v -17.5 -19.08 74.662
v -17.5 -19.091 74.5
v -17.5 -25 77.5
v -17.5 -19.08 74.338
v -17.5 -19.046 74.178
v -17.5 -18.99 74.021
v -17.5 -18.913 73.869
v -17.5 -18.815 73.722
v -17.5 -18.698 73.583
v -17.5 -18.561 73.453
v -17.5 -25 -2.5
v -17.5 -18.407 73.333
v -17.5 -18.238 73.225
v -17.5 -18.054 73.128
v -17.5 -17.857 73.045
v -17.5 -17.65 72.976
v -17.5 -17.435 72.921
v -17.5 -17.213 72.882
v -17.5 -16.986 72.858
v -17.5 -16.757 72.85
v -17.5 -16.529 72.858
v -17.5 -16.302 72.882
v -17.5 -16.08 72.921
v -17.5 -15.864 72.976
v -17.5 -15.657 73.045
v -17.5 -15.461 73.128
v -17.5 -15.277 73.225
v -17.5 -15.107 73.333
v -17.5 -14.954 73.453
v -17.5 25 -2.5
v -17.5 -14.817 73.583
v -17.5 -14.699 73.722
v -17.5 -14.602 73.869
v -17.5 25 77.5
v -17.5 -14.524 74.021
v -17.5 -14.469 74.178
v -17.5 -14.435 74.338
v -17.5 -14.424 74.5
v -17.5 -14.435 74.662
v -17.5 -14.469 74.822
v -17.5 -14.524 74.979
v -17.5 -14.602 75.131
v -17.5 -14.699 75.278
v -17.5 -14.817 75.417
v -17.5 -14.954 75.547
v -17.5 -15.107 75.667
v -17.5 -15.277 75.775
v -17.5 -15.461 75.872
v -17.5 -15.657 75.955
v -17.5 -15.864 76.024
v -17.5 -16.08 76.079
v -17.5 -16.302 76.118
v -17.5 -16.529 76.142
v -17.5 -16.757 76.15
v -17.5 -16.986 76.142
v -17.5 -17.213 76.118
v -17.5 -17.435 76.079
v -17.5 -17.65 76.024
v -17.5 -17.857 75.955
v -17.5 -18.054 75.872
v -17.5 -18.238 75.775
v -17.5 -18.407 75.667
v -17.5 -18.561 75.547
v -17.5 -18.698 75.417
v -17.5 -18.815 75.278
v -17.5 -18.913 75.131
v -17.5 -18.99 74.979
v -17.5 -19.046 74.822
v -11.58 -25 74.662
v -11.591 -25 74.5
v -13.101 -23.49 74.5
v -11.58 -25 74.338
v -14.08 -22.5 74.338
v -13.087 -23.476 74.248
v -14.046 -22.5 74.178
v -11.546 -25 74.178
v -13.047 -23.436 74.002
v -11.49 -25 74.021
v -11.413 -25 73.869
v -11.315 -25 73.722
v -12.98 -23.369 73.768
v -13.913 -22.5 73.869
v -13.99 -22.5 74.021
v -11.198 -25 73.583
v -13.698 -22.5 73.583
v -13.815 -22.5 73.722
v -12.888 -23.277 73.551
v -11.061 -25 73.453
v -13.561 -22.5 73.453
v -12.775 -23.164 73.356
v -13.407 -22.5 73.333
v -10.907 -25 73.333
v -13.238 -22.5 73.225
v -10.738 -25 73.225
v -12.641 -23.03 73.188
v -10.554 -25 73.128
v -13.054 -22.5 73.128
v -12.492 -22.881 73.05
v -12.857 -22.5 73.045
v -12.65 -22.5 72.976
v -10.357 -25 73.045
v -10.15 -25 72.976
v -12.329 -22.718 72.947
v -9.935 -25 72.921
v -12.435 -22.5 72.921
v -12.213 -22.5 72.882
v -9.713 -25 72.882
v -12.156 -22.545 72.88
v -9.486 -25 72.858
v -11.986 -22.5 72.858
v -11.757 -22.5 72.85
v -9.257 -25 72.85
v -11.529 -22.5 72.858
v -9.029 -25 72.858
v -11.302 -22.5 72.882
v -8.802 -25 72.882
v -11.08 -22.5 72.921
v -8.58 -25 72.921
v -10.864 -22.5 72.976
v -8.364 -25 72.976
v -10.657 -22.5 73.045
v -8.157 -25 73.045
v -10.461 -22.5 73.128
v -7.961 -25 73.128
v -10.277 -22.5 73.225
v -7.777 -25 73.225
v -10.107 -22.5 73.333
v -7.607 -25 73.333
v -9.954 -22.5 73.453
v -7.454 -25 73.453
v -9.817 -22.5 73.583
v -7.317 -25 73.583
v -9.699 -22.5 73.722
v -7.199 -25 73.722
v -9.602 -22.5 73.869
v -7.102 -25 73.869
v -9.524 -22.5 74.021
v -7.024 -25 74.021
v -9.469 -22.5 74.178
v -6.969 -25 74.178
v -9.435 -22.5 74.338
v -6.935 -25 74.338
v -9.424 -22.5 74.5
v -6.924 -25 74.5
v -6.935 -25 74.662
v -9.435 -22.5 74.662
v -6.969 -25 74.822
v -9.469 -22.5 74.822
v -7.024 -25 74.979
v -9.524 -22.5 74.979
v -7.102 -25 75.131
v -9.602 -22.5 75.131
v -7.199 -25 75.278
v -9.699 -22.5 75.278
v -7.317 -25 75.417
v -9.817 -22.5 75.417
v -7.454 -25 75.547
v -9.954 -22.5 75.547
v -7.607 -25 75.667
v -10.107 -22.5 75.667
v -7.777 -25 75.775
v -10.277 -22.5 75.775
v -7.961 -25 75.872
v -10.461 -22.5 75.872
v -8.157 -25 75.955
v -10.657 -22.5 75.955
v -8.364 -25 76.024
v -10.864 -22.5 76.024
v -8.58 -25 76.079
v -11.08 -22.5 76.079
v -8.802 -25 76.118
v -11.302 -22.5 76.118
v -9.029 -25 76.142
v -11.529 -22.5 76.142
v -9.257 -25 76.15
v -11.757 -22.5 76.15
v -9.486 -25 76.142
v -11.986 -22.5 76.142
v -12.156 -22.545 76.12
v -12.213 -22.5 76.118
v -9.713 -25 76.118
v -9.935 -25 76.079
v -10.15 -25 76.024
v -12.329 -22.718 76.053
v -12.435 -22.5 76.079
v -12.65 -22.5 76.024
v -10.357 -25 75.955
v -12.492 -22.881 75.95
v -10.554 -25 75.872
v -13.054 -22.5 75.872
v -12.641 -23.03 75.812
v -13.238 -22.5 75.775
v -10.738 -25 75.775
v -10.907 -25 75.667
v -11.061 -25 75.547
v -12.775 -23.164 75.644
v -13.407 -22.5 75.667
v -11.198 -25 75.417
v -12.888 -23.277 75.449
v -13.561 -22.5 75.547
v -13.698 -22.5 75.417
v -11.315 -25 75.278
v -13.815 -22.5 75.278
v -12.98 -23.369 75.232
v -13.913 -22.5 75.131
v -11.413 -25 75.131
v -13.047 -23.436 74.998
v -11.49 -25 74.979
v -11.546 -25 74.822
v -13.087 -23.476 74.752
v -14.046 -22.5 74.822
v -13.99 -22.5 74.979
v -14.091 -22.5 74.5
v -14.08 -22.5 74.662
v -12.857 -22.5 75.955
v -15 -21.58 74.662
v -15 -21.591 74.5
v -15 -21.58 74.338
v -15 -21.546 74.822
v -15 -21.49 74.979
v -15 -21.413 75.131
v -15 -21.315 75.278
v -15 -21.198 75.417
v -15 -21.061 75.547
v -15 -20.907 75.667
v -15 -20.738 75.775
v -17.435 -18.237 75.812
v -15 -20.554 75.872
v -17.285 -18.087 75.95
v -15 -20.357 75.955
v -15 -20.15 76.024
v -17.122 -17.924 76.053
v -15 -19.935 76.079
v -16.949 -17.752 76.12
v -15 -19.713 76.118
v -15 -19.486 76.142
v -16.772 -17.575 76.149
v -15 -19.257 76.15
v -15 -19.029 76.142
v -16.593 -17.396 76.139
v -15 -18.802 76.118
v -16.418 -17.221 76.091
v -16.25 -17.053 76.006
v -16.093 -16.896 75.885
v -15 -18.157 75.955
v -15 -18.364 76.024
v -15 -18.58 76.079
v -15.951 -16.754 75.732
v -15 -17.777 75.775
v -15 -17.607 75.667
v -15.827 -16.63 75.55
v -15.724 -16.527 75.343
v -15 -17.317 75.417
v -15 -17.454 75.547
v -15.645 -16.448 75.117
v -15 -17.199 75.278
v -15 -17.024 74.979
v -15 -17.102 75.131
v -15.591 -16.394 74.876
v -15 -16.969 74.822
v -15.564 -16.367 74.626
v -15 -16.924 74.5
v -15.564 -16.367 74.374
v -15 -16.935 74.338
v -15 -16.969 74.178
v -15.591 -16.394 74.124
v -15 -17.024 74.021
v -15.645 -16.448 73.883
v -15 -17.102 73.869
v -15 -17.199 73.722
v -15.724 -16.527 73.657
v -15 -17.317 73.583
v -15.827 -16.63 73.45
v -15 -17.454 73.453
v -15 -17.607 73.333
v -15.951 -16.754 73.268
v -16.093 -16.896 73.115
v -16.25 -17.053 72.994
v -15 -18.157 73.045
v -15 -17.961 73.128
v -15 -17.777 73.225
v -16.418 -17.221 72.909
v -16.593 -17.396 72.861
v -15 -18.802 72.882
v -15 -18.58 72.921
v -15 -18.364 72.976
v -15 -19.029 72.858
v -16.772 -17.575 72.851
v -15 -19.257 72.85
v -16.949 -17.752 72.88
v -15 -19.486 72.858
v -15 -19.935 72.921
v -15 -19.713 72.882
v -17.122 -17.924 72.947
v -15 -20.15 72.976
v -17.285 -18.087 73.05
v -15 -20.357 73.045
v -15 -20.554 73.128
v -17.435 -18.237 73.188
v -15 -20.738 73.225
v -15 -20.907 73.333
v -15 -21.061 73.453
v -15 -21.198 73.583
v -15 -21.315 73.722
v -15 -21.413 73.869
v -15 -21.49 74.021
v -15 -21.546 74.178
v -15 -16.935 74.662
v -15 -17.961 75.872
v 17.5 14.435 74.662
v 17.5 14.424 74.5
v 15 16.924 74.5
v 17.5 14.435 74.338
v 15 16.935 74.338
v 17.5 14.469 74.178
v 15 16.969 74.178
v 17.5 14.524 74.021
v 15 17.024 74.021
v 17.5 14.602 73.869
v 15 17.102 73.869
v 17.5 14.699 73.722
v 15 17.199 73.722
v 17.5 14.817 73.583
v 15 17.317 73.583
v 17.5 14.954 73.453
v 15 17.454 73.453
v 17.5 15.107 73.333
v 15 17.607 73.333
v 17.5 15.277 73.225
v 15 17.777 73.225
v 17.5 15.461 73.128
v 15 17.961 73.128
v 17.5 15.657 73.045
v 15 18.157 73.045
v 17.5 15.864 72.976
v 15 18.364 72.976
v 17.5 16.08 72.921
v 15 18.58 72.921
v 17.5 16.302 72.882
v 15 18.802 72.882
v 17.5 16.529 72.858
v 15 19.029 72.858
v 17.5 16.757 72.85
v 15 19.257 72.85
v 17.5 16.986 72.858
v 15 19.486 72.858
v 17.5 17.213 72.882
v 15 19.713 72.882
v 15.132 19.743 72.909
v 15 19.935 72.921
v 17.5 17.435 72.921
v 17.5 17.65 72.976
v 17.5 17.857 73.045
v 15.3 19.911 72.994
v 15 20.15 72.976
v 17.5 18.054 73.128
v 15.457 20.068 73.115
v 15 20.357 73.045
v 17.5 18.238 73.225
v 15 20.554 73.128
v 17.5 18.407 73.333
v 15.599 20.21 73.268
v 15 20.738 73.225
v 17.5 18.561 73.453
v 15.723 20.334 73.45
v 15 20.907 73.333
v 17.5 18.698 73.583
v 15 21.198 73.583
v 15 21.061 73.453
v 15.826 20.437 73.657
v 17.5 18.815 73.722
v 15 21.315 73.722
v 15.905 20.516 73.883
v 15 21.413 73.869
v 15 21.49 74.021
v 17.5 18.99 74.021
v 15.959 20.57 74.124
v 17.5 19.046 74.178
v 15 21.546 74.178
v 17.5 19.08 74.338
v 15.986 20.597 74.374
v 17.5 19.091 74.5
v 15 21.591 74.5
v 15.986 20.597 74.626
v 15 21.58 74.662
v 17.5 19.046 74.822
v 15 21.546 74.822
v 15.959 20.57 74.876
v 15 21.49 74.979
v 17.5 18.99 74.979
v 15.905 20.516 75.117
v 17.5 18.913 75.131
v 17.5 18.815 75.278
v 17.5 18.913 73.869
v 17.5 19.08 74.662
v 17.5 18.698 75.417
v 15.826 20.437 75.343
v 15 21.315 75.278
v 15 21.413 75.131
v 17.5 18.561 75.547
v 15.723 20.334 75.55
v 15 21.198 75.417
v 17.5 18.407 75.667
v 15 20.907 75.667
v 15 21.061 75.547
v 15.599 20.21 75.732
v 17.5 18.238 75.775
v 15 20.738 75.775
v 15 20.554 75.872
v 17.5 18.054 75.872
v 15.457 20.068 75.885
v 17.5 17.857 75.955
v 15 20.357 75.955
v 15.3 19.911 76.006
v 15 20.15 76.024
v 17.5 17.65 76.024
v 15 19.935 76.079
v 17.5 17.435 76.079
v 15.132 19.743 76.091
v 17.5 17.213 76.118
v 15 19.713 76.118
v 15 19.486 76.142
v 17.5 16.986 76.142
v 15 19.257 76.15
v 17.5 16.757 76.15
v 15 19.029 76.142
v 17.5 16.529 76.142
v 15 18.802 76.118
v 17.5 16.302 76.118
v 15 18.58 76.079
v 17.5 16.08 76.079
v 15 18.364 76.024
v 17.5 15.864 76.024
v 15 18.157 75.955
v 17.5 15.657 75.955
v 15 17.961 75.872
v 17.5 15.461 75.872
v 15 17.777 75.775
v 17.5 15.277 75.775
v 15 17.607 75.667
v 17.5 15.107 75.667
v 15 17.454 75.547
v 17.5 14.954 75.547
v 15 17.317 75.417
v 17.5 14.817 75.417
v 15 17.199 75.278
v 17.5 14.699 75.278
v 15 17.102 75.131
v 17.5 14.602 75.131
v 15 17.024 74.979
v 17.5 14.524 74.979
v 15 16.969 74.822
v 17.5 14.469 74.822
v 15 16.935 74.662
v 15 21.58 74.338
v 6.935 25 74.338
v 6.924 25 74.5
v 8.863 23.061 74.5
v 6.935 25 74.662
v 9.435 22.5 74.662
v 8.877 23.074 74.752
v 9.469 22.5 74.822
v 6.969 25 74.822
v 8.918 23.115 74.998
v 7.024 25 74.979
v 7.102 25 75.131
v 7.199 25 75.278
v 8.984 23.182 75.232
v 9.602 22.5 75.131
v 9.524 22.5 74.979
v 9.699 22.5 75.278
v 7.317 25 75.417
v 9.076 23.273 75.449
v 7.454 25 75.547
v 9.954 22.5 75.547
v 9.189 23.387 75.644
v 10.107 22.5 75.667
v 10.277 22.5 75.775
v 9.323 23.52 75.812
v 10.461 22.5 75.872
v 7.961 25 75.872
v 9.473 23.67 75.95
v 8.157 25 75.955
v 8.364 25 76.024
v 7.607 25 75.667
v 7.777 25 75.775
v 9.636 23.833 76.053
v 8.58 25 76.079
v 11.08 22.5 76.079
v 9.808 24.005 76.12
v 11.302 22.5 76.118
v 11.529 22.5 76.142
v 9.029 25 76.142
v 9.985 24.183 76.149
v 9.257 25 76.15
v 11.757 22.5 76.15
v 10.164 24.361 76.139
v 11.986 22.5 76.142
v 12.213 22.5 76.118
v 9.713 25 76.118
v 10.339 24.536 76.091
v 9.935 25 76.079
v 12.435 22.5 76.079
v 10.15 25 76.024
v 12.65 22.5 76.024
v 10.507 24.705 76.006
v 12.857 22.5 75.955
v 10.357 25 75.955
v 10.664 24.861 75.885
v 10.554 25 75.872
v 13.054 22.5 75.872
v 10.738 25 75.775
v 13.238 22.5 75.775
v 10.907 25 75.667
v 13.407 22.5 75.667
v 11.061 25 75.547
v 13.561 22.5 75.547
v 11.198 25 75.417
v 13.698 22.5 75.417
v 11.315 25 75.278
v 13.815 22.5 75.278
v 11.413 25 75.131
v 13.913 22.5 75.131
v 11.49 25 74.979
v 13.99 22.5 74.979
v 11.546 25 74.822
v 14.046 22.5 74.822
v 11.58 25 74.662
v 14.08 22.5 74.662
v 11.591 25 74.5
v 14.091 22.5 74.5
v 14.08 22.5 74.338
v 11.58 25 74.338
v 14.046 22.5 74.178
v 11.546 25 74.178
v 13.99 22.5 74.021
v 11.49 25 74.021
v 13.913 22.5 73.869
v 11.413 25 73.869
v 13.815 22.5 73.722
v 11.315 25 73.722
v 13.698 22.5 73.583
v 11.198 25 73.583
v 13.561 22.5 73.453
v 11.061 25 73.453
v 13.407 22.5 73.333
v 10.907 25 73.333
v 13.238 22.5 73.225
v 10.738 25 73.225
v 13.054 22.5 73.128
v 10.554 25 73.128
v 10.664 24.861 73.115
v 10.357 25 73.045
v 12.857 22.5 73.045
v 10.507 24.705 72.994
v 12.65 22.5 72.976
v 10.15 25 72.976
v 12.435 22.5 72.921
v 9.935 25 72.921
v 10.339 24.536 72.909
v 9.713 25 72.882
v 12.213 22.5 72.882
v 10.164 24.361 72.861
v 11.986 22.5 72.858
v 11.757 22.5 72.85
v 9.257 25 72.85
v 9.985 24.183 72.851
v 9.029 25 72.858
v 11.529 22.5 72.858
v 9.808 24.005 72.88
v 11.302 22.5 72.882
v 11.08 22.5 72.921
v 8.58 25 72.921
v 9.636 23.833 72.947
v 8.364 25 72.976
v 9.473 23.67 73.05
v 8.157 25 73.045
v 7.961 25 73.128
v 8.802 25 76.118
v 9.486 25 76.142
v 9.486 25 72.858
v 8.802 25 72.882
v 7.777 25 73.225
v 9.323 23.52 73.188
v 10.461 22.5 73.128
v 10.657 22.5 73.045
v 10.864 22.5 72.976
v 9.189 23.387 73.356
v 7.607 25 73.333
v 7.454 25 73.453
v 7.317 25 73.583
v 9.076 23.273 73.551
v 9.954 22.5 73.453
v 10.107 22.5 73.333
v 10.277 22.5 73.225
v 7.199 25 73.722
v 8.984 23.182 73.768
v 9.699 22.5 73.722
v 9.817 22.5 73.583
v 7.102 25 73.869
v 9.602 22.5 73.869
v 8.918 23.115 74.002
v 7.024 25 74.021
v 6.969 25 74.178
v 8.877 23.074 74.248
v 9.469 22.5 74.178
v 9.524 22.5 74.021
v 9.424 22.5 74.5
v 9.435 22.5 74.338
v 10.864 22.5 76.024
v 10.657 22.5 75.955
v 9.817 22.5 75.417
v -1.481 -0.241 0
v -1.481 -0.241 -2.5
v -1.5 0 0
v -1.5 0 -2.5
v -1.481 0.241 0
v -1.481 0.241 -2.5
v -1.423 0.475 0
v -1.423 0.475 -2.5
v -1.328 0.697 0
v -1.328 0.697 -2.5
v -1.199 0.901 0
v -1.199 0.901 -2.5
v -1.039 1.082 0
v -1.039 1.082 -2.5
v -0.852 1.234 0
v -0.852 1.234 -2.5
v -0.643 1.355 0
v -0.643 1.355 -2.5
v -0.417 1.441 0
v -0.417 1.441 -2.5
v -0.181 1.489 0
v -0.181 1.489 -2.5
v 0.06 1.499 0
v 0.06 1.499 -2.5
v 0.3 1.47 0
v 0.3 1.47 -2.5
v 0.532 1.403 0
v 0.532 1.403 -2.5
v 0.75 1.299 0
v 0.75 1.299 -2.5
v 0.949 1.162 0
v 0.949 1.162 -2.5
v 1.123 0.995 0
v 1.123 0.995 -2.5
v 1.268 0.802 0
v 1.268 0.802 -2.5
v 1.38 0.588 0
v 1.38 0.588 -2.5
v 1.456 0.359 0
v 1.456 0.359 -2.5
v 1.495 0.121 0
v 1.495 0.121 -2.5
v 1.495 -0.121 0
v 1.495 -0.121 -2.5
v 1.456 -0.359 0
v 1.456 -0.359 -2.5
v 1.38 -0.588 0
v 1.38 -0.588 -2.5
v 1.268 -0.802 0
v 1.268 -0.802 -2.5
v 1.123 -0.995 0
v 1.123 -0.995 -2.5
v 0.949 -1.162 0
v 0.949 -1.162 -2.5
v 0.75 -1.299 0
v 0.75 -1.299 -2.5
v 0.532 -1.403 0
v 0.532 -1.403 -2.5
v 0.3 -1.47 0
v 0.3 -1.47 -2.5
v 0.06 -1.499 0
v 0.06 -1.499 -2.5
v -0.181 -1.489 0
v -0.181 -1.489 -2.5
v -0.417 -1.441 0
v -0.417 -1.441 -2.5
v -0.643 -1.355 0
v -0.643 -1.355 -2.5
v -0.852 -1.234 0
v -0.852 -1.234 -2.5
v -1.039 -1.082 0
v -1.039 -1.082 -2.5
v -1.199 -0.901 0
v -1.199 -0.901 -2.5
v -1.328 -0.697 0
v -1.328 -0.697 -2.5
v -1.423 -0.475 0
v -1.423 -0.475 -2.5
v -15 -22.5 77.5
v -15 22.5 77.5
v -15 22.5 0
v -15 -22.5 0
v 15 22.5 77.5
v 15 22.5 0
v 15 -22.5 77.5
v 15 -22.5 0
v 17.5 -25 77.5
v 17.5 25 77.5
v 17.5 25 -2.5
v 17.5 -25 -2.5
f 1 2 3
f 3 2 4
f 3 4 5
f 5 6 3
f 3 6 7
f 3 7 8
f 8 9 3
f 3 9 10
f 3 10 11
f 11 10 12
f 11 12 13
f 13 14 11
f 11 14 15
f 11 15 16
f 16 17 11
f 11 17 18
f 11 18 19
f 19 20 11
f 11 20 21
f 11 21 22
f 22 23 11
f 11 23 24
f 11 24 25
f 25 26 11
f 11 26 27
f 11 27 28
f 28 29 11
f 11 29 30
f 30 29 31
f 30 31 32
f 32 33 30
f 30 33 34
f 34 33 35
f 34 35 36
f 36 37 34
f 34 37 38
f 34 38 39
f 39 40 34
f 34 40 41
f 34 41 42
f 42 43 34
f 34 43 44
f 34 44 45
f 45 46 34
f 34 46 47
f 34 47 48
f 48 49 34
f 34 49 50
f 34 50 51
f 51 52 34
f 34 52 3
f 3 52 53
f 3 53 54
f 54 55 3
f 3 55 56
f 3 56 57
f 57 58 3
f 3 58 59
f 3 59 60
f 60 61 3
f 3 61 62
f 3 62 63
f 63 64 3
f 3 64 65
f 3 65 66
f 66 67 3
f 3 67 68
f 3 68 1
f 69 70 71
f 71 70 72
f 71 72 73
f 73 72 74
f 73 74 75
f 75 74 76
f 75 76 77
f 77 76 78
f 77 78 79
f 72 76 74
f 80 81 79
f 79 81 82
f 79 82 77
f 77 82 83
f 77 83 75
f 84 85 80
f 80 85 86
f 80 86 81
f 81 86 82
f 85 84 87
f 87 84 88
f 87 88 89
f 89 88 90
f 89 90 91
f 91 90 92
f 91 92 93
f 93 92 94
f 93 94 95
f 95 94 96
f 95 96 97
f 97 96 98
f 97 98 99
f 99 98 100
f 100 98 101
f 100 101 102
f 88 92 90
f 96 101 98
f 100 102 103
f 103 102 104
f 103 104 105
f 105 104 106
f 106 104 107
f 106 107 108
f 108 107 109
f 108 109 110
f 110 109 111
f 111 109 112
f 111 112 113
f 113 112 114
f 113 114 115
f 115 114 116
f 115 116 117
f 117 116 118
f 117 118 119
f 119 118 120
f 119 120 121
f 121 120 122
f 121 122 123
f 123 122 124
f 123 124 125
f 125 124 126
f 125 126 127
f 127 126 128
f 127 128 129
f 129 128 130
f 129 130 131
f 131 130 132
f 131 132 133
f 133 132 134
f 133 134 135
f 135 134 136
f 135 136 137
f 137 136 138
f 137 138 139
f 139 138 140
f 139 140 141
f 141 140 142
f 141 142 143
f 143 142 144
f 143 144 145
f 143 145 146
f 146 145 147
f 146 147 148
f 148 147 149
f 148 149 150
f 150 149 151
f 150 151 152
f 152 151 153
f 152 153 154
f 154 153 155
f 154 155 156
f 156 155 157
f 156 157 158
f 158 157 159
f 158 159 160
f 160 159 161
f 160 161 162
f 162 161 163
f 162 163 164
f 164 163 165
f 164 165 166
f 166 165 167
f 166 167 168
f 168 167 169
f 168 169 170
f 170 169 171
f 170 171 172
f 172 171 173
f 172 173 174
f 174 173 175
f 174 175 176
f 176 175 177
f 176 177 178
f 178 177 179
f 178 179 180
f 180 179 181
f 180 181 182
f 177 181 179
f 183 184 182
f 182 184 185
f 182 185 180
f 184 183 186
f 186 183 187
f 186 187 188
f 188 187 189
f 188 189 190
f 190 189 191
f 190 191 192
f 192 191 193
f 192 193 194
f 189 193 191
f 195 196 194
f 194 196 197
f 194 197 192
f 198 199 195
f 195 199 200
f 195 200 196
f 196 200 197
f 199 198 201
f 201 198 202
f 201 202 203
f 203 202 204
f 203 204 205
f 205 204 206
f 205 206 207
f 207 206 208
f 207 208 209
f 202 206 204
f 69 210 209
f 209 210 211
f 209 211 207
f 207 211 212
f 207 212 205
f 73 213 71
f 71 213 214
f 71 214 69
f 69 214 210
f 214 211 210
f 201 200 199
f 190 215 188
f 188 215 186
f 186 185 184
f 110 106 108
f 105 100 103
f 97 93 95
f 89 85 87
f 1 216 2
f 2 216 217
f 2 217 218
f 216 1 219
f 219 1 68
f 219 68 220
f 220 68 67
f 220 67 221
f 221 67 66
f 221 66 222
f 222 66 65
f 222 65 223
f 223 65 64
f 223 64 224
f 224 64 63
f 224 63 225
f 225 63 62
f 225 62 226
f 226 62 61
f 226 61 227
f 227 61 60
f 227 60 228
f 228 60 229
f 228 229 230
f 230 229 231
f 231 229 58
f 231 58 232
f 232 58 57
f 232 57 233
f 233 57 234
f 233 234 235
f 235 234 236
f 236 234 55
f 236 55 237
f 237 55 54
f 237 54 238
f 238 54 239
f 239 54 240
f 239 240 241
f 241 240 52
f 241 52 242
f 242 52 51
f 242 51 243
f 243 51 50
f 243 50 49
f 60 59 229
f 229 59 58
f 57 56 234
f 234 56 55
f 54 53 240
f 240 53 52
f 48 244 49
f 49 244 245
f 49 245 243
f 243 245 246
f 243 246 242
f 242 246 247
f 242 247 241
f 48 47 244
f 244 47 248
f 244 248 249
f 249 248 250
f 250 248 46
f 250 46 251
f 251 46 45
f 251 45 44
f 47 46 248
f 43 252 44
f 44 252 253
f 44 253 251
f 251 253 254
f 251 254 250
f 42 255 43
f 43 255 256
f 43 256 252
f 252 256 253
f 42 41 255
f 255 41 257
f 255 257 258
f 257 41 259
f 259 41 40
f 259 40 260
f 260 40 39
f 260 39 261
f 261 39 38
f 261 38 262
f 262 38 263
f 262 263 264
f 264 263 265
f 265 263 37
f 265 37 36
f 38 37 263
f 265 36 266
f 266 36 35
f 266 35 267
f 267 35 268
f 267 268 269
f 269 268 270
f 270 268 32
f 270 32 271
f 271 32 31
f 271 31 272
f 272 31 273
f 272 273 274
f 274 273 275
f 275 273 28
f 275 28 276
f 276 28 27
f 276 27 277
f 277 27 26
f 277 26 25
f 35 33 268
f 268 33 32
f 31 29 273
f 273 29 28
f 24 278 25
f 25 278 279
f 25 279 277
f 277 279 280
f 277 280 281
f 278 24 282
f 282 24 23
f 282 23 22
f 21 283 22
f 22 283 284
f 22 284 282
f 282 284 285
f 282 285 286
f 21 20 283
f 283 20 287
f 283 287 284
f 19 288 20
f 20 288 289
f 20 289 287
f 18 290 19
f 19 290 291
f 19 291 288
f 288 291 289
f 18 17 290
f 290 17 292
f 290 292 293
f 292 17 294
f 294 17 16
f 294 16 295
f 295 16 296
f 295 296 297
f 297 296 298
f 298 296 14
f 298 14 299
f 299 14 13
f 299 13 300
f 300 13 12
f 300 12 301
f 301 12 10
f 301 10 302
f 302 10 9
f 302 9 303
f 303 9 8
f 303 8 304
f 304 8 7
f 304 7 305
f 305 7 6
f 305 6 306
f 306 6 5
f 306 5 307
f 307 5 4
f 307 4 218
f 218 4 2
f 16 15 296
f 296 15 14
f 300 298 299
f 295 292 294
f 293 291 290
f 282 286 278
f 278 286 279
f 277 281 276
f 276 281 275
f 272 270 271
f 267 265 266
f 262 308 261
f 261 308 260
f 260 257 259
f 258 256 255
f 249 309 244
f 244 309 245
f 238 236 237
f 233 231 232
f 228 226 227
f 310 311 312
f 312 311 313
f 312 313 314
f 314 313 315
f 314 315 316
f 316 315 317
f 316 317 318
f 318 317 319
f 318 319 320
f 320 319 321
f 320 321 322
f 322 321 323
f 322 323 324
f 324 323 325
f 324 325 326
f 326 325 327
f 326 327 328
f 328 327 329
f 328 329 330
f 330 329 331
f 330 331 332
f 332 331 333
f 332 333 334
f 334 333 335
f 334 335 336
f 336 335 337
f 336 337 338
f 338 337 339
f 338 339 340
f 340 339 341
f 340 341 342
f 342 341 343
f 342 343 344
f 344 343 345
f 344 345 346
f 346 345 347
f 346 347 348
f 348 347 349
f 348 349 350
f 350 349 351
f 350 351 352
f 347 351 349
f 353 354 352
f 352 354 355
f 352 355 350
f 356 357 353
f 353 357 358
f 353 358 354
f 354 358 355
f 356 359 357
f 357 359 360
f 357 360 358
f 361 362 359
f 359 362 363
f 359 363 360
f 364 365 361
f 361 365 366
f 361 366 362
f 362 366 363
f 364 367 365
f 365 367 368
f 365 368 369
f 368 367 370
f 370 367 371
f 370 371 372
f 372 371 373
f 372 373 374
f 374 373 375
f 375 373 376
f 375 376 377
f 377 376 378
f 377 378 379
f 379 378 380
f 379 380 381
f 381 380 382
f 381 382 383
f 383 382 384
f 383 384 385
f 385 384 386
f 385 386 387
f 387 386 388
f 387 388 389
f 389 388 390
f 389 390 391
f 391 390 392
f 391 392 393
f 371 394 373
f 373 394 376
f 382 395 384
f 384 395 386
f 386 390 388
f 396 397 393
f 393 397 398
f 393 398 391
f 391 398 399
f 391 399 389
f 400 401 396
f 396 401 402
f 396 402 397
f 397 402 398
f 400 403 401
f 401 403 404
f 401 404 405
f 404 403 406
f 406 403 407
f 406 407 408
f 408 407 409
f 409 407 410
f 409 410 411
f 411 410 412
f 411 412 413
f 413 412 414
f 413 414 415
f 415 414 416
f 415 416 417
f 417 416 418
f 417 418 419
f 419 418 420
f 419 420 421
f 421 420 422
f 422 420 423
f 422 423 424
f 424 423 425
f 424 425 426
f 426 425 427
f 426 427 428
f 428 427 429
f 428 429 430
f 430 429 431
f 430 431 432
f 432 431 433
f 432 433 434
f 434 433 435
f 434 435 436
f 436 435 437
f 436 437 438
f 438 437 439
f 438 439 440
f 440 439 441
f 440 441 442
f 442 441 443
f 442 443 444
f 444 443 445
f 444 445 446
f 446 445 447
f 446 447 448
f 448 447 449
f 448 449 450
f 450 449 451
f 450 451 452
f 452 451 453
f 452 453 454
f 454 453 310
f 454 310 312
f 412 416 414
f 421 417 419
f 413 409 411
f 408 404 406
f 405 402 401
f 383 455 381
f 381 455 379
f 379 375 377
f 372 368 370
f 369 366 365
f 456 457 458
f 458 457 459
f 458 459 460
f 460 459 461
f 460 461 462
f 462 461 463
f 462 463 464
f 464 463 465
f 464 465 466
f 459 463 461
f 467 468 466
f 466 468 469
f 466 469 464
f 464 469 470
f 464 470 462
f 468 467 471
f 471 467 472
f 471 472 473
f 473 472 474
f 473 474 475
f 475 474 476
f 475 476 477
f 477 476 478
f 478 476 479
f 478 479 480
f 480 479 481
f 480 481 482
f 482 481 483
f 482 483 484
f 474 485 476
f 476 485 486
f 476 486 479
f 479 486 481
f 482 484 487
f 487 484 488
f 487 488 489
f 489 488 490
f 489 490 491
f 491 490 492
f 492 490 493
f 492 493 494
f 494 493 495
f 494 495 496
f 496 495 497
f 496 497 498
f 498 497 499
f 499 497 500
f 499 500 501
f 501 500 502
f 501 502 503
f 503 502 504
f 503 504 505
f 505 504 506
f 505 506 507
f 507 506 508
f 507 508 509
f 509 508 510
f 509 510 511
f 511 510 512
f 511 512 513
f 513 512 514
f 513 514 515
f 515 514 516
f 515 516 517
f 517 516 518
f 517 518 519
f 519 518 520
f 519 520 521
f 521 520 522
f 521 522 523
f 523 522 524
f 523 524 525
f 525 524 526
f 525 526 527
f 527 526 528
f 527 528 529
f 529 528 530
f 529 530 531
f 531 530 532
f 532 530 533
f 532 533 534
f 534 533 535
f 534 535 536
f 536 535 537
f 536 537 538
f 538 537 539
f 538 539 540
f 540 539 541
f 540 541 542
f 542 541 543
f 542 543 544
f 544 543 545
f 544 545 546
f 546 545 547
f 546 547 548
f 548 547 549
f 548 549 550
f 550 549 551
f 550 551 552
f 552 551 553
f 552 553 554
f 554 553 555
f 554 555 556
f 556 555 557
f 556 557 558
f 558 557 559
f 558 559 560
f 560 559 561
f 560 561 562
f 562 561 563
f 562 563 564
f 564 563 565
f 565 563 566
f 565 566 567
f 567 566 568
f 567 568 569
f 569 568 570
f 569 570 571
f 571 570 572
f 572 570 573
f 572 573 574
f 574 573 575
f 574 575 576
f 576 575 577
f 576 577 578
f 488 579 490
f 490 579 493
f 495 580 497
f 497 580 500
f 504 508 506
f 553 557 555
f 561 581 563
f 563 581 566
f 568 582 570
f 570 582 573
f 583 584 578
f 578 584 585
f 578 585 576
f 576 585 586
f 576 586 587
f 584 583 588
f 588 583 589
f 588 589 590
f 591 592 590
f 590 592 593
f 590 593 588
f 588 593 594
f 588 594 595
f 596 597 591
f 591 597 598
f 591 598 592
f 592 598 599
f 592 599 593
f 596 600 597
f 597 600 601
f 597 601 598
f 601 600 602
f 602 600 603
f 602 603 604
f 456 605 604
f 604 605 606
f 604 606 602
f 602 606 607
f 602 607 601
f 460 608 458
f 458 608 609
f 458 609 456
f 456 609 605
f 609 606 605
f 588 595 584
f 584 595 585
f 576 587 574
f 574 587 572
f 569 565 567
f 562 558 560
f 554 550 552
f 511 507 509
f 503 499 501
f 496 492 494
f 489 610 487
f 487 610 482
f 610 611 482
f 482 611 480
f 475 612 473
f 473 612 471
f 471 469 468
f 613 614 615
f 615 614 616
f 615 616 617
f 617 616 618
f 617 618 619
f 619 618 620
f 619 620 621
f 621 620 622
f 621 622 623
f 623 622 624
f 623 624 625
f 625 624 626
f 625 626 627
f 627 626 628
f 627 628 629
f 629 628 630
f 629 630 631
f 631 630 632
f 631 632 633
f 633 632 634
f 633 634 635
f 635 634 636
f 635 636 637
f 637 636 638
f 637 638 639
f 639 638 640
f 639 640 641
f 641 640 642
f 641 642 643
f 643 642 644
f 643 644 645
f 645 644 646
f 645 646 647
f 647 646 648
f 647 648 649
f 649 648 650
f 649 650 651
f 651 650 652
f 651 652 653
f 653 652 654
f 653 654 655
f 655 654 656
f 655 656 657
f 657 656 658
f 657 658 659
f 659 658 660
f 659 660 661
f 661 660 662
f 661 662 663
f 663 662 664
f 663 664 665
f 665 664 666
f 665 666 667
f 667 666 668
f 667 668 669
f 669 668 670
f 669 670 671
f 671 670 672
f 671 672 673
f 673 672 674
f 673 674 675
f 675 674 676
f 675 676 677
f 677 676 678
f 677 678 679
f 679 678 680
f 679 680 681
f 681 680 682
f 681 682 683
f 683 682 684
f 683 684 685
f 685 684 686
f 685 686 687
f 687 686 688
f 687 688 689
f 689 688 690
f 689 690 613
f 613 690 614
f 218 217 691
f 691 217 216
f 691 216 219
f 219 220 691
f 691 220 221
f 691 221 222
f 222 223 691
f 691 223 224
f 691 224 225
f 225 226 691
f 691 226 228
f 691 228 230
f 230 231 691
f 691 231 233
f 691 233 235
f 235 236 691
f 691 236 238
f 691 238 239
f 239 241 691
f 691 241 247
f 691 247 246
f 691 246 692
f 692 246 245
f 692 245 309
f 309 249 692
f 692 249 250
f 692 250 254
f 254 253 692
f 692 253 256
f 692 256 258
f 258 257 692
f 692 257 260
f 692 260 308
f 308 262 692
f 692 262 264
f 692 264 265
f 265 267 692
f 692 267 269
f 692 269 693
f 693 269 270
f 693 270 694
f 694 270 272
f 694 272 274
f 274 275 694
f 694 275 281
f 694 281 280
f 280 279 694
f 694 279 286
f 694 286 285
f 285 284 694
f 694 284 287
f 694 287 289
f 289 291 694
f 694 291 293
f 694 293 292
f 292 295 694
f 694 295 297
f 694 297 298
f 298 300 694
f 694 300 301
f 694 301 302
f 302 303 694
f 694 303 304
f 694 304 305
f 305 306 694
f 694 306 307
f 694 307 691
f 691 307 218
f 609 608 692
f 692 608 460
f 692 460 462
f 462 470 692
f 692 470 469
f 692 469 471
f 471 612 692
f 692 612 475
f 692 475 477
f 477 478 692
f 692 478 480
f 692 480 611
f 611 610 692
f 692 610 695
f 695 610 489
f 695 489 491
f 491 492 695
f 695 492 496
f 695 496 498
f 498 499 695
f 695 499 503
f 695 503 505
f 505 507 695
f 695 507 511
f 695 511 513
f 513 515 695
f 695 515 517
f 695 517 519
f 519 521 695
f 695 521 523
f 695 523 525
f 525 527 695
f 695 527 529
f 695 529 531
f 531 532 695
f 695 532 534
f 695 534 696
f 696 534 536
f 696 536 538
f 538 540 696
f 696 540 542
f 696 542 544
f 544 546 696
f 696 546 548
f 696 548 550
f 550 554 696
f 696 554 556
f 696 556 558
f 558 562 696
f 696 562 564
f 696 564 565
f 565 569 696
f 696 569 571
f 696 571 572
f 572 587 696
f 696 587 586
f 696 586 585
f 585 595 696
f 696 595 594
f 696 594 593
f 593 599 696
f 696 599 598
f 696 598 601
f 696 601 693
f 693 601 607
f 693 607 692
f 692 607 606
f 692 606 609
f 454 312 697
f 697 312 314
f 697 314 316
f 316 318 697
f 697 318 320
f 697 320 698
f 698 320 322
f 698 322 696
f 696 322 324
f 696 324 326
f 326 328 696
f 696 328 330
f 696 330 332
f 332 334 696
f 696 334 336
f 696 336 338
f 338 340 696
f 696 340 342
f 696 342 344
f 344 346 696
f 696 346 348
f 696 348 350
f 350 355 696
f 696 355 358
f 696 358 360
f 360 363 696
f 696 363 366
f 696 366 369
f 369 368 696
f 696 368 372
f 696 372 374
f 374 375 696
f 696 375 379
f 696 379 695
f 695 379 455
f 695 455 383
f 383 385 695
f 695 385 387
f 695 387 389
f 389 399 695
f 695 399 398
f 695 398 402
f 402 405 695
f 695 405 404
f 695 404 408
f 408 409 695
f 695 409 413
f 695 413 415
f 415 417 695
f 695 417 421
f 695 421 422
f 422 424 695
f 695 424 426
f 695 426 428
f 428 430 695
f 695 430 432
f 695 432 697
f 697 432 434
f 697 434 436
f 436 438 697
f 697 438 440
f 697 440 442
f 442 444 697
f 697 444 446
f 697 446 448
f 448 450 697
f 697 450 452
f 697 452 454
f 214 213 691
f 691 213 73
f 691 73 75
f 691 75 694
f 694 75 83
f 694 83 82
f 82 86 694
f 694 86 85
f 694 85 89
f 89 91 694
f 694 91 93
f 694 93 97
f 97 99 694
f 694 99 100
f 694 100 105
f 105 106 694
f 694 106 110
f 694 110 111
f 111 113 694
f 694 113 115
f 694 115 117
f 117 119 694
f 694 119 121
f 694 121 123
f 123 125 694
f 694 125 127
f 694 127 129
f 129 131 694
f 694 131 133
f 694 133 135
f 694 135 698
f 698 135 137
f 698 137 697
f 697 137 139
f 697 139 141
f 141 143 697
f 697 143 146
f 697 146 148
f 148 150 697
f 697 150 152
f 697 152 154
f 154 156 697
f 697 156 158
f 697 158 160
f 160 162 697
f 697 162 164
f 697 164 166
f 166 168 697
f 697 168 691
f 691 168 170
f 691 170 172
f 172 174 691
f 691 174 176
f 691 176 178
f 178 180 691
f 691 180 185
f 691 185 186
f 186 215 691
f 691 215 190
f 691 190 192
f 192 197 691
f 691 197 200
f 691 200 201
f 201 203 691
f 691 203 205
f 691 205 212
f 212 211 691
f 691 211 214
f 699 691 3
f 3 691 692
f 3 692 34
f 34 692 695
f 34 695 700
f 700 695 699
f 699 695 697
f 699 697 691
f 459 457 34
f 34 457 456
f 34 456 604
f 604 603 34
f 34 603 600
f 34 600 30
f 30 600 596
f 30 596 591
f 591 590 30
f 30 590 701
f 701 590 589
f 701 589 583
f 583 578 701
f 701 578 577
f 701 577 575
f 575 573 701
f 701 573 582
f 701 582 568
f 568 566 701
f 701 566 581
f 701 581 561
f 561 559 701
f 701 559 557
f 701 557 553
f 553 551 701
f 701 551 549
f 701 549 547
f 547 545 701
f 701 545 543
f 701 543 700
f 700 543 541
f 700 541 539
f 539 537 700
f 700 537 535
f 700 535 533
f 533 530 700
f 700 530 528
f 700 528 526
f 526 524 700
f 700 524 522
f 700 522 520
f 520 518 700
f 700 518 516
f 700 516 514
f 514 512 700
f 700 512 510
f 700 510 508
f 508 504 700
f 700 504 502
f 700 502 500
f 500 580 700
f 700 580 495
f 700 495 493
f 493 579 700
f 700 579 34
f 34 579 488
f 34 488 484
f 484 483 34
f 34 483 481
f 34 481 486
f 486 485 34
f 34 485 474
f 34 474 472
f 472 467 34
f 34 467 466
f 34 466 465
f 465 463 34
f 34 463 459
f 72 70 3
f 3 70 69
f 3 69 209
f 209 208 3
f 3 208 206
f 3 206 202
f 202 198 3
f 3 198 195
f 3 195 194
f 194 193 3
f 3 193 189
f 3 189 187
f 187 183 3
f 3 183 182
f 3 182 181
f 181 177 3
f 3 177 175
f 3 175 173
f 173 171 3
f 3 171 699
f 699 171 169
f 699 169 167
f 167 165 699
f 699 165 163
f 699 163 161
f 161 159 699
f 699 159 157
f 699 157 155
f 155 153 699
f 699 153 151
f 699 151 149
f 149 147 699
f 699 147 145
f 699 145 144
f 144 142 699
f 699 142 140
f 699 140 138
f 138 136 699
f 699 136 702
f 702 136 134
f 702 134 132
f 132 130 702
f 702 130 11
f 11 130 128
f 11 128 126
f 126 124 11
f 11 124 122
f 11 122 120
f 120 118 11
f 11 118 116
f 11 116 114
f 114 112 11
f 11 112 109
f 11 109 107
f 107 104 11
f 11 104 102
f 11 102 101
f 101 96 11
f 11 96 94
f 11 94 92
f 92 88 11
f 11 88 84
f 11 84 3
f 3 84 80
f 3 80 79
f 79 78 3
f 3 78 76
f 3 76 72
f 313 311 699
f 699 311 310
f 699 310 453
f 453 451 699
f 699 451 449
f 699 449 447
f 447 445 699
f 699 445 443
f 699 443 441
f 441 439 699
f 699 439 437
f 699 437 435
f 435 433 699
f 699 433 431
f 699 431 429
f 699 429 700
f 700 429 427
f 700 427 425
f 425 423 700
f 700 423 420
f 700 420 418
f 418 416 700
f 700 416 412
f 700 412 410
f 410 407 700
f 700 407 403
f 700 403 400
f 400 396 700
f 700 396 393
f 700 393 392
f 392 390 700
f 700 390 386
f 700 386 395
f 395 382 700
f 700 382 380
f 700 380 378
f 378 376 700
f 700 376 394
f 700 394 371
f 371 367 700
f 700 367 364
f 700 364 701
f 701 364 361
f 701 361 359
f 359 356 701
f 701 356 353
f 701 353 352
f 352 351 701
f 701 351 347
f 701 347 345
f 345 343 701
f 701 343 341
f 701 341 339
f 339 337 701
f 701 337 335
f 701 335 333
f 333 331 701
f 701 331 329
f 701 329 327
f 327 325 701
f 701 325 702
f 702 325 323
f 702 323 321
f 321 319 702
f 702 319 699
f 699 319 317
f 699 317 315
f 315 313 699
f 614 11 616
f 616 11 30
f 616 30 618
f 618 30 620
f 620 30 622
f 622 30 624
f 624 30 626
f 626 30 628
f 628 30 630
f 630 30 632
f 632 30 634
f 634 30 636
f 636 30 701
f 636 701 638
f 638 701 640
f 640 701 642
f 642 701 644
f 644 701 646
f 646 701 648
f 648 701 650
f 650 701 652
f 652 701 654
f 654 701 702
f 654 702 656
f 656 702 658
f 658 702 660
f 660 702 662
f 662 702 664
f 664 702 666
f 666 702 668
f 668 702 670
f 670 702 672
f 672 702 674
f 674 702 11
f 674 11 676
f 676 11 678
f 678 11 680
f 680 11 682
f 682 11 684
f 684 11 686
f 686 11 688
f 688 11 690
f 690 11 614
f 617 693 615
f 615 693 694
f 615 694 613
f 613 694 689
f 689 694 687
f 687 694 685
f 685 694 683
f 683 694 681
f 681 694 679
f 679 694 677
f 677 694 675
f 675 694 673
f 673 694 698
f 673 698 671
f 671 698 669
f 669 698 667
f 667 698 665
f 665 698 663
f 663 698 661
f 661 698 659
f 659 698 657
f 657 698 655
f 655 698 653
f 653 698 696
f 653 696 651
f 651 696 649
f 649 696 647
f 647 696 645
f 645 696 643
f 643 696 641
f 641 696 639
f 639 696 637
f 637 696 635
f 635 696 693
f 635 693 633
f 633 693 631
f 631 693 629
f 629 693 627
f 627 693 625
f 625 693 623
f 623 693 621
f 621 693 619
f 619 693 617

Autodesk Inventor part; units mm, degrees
ref_plane "YZ Plane" through (0, 0, 0) normal (1, 0, 0) x (0, 1, 0)
ref_plane "XZ Plane" through (0, 0, 0) normal (0, 1, 0) x (-1, 0, 0)
ref_plane "XY Plane" through (0, 0, 0) normal (0, 0, 1) x (1, 0, 0)
sketch "Skizze1" plane through (0, 0, 0) normal (0, 0, 1) x (1, 0, 0)
  line L0 (-15, -22.5) -> (15, -22.5)
  line L1 (15, -22.5) -> (15, 22.5)
  line L2 (15, 22.5) -> (-15, 22.5)
  line L3 (-15, 22.5) -> (-15, -22.5)
  line L4 (17.5, 25) -> (17.5, -25)
  line L5 (17.5, -25) -> (-17.5, -25)
  line L6 (-17.5, -25) -> (-17.5, 25)
  line L7 (-17.5, 25) -> (17.5, 25)
  point P0 (0, 0)
  point P1 (0, 22.5)
  point P2 (15, 0)
  dimension "d0" = 45
  dimension "d1" = 30
  dimension "d2" = 2.5
extrude "Extrusion1" add sketch "Skizze1" against normal blind 2.5 contours L3 L2 L1 L0 | L4 L5 L6 L7
extrude "Extrusion2" add sketch "Skizze1" along normal blind 77.5
sketch "Skizze2" plane through (0, 0, -2.5) normal (0, 0, -1) x (-1, 0, 0)
  circle A0 centre (0, 0) radius 1.5
  dimension "d7" = 3
extrude "Extrusion3" cut sketch "Skizze2" against normal up to surface (2.5 mm away)
sketch "Skizze3" plane through (0, 0, 77.5) normal (0, 0, 1) x (1, 0, 0)
  line L0 (5.0147, 25) -> (13.5, 25)
  line L1 (13.5, 25) -> (9.2574, 29.2426)
  line L2 (9.2574, 29.2426) -> (5.0147, 25)
  line L3 (17.5, 21) -> (17.5, 12.5147)
  line L4 (17.5, 12.5147) -> (21.7426, 16.7574)
  line L5 (21.7426, 16.7574) -> (17.5, 21)
  line L6 (17.5, 25) -> (-17.5, 25) projected
  line L7 (17.5, -25) -> (17.5, 25) projected
  line L8 (7.136, 27.1213) -> (19.6213, 14.636) construction
  line L9 (-17.5, -12.5147) -> (-17.5, -21)
  line L10 (-17.5, -21) -> (-21.7426, -16.7574)
  line L11 (-21.7426, -16.7574) -> (-17.5, -12.5147)
  line L12 (-13.5, -25) -> (-5.0147, -25)
  line L13 (-5.0147, -25) -> (-9.2574, -29.2426)
  line L14 (-9.2574, -29.2426) -> (-13.5, -25)
  line L15 (-17.5, 25) -> (-17.5, -25) projected
  line L16 (-17.5, -25) -> (17.5, -25) projected
  line L17 (-19.6213, -14.636) -> (-7.136, -27.1213) construction
  point P0 (0, 0)
  dimension "d11" = 6
  dimension "d17" = 4
  dimension "d18" = 4
extrude "Extrusion4" add sketch "Skizze3" against normal blind 6 contours L2 L1 L0 | L9 L10 L11 | L5 L4 L3 | L12 L13 L14
sketch "Skizze4" plane through (9.2574, 29.2426, 71.5) normal (-0.7071, 0.7071, 0) x (-0.7071, -0.7071, 0)
  line L0 (0, 0) -> (6, 0) construction
  line L1 (6, 6) -> (0, 6) construction
  line L2 (0, 0) -> (6, 0) construction
  line L3 (6, 0) -> (6, 6) construction
  line L4 (6, 6) -> (0, 6) construction
  line L5 (0, 6) -> (0, 0) construction
  circle A0 centre (3, 3) radius 1.65
  point P0 (27.2236, -71.5)
  point P1 (3, 6)
  point P2 (0, 3)
  dimension "d14" = 3.3
extrude "Extrusion5" cut sketch "Skizze4" against normal up to surface (17.6569 mm away)
sketch "Skizze5" plane through (-17.5, -12.5147, 71.5) normal (-0.7071, 0.7071, 0) x (-0.7071, -0.7071, 0)
  line L0 (0, 0) -> (6, 0) construction
  line L1 (0, 6) -> (6, 6) construction
  line L2 (0, 0) -> (6, 0) construction
  line L3 (6, 0) -> (6, 6) construction
  line L4 (6, 6) -> (0, 6) construction
  line L5 (0, 6) -> (0, 0) construction
  circle A0 centre (3, 3) radius 1.65
  point P0 (-21.2236, -71.5)
  point P1 (3, 6)
  point P2 (0, 3)
  dimension "d19" = 3.3
extrude "Extrusion6" cut sketch "Skizze5" against normal up to surface (17.6569 mm away)
sketch "Skizze6" plane through (0, 0, 77.5) normal (0, 0, 1) x (1, 0, 0)
  line L0 (-21.7426, -29.2426) -> (21.7426, -29.2426)
  line L1 (21.7426, -29.2426) -> (21.7426, 29.2426)
  line L2 (21.7426, 29.2426) -> (-21.7426, 29.2426)
  line L3 (-21.7426, 29.2426) -> (-21.7426, -29.2426)
  line L4 (17.5, 25) -> (13.5, 25) projected
  line L5 (17.5, 25) -> (-17.5, 25)
  line L6 (-17.5, 25) -> (-17.5, -25)
  line L7 (-17.5, -25) -> (17.5, -25)
  line L8 (17.5, -25) -> (17.5, 25)
  point P0 (0, 0)
  point P1 (9.2574, 29.2426)
  point P2 (21.7426, 16.7574)
  point P3 (-9.2574, -29.2426)
  point P4 (-21.7426, -16.7574)
extrude "Extrusion7" cut sketch "Skizze6" against normal up to surface (6 mm away)
equation "\"d18\" = d17"
properties part number "cage"
